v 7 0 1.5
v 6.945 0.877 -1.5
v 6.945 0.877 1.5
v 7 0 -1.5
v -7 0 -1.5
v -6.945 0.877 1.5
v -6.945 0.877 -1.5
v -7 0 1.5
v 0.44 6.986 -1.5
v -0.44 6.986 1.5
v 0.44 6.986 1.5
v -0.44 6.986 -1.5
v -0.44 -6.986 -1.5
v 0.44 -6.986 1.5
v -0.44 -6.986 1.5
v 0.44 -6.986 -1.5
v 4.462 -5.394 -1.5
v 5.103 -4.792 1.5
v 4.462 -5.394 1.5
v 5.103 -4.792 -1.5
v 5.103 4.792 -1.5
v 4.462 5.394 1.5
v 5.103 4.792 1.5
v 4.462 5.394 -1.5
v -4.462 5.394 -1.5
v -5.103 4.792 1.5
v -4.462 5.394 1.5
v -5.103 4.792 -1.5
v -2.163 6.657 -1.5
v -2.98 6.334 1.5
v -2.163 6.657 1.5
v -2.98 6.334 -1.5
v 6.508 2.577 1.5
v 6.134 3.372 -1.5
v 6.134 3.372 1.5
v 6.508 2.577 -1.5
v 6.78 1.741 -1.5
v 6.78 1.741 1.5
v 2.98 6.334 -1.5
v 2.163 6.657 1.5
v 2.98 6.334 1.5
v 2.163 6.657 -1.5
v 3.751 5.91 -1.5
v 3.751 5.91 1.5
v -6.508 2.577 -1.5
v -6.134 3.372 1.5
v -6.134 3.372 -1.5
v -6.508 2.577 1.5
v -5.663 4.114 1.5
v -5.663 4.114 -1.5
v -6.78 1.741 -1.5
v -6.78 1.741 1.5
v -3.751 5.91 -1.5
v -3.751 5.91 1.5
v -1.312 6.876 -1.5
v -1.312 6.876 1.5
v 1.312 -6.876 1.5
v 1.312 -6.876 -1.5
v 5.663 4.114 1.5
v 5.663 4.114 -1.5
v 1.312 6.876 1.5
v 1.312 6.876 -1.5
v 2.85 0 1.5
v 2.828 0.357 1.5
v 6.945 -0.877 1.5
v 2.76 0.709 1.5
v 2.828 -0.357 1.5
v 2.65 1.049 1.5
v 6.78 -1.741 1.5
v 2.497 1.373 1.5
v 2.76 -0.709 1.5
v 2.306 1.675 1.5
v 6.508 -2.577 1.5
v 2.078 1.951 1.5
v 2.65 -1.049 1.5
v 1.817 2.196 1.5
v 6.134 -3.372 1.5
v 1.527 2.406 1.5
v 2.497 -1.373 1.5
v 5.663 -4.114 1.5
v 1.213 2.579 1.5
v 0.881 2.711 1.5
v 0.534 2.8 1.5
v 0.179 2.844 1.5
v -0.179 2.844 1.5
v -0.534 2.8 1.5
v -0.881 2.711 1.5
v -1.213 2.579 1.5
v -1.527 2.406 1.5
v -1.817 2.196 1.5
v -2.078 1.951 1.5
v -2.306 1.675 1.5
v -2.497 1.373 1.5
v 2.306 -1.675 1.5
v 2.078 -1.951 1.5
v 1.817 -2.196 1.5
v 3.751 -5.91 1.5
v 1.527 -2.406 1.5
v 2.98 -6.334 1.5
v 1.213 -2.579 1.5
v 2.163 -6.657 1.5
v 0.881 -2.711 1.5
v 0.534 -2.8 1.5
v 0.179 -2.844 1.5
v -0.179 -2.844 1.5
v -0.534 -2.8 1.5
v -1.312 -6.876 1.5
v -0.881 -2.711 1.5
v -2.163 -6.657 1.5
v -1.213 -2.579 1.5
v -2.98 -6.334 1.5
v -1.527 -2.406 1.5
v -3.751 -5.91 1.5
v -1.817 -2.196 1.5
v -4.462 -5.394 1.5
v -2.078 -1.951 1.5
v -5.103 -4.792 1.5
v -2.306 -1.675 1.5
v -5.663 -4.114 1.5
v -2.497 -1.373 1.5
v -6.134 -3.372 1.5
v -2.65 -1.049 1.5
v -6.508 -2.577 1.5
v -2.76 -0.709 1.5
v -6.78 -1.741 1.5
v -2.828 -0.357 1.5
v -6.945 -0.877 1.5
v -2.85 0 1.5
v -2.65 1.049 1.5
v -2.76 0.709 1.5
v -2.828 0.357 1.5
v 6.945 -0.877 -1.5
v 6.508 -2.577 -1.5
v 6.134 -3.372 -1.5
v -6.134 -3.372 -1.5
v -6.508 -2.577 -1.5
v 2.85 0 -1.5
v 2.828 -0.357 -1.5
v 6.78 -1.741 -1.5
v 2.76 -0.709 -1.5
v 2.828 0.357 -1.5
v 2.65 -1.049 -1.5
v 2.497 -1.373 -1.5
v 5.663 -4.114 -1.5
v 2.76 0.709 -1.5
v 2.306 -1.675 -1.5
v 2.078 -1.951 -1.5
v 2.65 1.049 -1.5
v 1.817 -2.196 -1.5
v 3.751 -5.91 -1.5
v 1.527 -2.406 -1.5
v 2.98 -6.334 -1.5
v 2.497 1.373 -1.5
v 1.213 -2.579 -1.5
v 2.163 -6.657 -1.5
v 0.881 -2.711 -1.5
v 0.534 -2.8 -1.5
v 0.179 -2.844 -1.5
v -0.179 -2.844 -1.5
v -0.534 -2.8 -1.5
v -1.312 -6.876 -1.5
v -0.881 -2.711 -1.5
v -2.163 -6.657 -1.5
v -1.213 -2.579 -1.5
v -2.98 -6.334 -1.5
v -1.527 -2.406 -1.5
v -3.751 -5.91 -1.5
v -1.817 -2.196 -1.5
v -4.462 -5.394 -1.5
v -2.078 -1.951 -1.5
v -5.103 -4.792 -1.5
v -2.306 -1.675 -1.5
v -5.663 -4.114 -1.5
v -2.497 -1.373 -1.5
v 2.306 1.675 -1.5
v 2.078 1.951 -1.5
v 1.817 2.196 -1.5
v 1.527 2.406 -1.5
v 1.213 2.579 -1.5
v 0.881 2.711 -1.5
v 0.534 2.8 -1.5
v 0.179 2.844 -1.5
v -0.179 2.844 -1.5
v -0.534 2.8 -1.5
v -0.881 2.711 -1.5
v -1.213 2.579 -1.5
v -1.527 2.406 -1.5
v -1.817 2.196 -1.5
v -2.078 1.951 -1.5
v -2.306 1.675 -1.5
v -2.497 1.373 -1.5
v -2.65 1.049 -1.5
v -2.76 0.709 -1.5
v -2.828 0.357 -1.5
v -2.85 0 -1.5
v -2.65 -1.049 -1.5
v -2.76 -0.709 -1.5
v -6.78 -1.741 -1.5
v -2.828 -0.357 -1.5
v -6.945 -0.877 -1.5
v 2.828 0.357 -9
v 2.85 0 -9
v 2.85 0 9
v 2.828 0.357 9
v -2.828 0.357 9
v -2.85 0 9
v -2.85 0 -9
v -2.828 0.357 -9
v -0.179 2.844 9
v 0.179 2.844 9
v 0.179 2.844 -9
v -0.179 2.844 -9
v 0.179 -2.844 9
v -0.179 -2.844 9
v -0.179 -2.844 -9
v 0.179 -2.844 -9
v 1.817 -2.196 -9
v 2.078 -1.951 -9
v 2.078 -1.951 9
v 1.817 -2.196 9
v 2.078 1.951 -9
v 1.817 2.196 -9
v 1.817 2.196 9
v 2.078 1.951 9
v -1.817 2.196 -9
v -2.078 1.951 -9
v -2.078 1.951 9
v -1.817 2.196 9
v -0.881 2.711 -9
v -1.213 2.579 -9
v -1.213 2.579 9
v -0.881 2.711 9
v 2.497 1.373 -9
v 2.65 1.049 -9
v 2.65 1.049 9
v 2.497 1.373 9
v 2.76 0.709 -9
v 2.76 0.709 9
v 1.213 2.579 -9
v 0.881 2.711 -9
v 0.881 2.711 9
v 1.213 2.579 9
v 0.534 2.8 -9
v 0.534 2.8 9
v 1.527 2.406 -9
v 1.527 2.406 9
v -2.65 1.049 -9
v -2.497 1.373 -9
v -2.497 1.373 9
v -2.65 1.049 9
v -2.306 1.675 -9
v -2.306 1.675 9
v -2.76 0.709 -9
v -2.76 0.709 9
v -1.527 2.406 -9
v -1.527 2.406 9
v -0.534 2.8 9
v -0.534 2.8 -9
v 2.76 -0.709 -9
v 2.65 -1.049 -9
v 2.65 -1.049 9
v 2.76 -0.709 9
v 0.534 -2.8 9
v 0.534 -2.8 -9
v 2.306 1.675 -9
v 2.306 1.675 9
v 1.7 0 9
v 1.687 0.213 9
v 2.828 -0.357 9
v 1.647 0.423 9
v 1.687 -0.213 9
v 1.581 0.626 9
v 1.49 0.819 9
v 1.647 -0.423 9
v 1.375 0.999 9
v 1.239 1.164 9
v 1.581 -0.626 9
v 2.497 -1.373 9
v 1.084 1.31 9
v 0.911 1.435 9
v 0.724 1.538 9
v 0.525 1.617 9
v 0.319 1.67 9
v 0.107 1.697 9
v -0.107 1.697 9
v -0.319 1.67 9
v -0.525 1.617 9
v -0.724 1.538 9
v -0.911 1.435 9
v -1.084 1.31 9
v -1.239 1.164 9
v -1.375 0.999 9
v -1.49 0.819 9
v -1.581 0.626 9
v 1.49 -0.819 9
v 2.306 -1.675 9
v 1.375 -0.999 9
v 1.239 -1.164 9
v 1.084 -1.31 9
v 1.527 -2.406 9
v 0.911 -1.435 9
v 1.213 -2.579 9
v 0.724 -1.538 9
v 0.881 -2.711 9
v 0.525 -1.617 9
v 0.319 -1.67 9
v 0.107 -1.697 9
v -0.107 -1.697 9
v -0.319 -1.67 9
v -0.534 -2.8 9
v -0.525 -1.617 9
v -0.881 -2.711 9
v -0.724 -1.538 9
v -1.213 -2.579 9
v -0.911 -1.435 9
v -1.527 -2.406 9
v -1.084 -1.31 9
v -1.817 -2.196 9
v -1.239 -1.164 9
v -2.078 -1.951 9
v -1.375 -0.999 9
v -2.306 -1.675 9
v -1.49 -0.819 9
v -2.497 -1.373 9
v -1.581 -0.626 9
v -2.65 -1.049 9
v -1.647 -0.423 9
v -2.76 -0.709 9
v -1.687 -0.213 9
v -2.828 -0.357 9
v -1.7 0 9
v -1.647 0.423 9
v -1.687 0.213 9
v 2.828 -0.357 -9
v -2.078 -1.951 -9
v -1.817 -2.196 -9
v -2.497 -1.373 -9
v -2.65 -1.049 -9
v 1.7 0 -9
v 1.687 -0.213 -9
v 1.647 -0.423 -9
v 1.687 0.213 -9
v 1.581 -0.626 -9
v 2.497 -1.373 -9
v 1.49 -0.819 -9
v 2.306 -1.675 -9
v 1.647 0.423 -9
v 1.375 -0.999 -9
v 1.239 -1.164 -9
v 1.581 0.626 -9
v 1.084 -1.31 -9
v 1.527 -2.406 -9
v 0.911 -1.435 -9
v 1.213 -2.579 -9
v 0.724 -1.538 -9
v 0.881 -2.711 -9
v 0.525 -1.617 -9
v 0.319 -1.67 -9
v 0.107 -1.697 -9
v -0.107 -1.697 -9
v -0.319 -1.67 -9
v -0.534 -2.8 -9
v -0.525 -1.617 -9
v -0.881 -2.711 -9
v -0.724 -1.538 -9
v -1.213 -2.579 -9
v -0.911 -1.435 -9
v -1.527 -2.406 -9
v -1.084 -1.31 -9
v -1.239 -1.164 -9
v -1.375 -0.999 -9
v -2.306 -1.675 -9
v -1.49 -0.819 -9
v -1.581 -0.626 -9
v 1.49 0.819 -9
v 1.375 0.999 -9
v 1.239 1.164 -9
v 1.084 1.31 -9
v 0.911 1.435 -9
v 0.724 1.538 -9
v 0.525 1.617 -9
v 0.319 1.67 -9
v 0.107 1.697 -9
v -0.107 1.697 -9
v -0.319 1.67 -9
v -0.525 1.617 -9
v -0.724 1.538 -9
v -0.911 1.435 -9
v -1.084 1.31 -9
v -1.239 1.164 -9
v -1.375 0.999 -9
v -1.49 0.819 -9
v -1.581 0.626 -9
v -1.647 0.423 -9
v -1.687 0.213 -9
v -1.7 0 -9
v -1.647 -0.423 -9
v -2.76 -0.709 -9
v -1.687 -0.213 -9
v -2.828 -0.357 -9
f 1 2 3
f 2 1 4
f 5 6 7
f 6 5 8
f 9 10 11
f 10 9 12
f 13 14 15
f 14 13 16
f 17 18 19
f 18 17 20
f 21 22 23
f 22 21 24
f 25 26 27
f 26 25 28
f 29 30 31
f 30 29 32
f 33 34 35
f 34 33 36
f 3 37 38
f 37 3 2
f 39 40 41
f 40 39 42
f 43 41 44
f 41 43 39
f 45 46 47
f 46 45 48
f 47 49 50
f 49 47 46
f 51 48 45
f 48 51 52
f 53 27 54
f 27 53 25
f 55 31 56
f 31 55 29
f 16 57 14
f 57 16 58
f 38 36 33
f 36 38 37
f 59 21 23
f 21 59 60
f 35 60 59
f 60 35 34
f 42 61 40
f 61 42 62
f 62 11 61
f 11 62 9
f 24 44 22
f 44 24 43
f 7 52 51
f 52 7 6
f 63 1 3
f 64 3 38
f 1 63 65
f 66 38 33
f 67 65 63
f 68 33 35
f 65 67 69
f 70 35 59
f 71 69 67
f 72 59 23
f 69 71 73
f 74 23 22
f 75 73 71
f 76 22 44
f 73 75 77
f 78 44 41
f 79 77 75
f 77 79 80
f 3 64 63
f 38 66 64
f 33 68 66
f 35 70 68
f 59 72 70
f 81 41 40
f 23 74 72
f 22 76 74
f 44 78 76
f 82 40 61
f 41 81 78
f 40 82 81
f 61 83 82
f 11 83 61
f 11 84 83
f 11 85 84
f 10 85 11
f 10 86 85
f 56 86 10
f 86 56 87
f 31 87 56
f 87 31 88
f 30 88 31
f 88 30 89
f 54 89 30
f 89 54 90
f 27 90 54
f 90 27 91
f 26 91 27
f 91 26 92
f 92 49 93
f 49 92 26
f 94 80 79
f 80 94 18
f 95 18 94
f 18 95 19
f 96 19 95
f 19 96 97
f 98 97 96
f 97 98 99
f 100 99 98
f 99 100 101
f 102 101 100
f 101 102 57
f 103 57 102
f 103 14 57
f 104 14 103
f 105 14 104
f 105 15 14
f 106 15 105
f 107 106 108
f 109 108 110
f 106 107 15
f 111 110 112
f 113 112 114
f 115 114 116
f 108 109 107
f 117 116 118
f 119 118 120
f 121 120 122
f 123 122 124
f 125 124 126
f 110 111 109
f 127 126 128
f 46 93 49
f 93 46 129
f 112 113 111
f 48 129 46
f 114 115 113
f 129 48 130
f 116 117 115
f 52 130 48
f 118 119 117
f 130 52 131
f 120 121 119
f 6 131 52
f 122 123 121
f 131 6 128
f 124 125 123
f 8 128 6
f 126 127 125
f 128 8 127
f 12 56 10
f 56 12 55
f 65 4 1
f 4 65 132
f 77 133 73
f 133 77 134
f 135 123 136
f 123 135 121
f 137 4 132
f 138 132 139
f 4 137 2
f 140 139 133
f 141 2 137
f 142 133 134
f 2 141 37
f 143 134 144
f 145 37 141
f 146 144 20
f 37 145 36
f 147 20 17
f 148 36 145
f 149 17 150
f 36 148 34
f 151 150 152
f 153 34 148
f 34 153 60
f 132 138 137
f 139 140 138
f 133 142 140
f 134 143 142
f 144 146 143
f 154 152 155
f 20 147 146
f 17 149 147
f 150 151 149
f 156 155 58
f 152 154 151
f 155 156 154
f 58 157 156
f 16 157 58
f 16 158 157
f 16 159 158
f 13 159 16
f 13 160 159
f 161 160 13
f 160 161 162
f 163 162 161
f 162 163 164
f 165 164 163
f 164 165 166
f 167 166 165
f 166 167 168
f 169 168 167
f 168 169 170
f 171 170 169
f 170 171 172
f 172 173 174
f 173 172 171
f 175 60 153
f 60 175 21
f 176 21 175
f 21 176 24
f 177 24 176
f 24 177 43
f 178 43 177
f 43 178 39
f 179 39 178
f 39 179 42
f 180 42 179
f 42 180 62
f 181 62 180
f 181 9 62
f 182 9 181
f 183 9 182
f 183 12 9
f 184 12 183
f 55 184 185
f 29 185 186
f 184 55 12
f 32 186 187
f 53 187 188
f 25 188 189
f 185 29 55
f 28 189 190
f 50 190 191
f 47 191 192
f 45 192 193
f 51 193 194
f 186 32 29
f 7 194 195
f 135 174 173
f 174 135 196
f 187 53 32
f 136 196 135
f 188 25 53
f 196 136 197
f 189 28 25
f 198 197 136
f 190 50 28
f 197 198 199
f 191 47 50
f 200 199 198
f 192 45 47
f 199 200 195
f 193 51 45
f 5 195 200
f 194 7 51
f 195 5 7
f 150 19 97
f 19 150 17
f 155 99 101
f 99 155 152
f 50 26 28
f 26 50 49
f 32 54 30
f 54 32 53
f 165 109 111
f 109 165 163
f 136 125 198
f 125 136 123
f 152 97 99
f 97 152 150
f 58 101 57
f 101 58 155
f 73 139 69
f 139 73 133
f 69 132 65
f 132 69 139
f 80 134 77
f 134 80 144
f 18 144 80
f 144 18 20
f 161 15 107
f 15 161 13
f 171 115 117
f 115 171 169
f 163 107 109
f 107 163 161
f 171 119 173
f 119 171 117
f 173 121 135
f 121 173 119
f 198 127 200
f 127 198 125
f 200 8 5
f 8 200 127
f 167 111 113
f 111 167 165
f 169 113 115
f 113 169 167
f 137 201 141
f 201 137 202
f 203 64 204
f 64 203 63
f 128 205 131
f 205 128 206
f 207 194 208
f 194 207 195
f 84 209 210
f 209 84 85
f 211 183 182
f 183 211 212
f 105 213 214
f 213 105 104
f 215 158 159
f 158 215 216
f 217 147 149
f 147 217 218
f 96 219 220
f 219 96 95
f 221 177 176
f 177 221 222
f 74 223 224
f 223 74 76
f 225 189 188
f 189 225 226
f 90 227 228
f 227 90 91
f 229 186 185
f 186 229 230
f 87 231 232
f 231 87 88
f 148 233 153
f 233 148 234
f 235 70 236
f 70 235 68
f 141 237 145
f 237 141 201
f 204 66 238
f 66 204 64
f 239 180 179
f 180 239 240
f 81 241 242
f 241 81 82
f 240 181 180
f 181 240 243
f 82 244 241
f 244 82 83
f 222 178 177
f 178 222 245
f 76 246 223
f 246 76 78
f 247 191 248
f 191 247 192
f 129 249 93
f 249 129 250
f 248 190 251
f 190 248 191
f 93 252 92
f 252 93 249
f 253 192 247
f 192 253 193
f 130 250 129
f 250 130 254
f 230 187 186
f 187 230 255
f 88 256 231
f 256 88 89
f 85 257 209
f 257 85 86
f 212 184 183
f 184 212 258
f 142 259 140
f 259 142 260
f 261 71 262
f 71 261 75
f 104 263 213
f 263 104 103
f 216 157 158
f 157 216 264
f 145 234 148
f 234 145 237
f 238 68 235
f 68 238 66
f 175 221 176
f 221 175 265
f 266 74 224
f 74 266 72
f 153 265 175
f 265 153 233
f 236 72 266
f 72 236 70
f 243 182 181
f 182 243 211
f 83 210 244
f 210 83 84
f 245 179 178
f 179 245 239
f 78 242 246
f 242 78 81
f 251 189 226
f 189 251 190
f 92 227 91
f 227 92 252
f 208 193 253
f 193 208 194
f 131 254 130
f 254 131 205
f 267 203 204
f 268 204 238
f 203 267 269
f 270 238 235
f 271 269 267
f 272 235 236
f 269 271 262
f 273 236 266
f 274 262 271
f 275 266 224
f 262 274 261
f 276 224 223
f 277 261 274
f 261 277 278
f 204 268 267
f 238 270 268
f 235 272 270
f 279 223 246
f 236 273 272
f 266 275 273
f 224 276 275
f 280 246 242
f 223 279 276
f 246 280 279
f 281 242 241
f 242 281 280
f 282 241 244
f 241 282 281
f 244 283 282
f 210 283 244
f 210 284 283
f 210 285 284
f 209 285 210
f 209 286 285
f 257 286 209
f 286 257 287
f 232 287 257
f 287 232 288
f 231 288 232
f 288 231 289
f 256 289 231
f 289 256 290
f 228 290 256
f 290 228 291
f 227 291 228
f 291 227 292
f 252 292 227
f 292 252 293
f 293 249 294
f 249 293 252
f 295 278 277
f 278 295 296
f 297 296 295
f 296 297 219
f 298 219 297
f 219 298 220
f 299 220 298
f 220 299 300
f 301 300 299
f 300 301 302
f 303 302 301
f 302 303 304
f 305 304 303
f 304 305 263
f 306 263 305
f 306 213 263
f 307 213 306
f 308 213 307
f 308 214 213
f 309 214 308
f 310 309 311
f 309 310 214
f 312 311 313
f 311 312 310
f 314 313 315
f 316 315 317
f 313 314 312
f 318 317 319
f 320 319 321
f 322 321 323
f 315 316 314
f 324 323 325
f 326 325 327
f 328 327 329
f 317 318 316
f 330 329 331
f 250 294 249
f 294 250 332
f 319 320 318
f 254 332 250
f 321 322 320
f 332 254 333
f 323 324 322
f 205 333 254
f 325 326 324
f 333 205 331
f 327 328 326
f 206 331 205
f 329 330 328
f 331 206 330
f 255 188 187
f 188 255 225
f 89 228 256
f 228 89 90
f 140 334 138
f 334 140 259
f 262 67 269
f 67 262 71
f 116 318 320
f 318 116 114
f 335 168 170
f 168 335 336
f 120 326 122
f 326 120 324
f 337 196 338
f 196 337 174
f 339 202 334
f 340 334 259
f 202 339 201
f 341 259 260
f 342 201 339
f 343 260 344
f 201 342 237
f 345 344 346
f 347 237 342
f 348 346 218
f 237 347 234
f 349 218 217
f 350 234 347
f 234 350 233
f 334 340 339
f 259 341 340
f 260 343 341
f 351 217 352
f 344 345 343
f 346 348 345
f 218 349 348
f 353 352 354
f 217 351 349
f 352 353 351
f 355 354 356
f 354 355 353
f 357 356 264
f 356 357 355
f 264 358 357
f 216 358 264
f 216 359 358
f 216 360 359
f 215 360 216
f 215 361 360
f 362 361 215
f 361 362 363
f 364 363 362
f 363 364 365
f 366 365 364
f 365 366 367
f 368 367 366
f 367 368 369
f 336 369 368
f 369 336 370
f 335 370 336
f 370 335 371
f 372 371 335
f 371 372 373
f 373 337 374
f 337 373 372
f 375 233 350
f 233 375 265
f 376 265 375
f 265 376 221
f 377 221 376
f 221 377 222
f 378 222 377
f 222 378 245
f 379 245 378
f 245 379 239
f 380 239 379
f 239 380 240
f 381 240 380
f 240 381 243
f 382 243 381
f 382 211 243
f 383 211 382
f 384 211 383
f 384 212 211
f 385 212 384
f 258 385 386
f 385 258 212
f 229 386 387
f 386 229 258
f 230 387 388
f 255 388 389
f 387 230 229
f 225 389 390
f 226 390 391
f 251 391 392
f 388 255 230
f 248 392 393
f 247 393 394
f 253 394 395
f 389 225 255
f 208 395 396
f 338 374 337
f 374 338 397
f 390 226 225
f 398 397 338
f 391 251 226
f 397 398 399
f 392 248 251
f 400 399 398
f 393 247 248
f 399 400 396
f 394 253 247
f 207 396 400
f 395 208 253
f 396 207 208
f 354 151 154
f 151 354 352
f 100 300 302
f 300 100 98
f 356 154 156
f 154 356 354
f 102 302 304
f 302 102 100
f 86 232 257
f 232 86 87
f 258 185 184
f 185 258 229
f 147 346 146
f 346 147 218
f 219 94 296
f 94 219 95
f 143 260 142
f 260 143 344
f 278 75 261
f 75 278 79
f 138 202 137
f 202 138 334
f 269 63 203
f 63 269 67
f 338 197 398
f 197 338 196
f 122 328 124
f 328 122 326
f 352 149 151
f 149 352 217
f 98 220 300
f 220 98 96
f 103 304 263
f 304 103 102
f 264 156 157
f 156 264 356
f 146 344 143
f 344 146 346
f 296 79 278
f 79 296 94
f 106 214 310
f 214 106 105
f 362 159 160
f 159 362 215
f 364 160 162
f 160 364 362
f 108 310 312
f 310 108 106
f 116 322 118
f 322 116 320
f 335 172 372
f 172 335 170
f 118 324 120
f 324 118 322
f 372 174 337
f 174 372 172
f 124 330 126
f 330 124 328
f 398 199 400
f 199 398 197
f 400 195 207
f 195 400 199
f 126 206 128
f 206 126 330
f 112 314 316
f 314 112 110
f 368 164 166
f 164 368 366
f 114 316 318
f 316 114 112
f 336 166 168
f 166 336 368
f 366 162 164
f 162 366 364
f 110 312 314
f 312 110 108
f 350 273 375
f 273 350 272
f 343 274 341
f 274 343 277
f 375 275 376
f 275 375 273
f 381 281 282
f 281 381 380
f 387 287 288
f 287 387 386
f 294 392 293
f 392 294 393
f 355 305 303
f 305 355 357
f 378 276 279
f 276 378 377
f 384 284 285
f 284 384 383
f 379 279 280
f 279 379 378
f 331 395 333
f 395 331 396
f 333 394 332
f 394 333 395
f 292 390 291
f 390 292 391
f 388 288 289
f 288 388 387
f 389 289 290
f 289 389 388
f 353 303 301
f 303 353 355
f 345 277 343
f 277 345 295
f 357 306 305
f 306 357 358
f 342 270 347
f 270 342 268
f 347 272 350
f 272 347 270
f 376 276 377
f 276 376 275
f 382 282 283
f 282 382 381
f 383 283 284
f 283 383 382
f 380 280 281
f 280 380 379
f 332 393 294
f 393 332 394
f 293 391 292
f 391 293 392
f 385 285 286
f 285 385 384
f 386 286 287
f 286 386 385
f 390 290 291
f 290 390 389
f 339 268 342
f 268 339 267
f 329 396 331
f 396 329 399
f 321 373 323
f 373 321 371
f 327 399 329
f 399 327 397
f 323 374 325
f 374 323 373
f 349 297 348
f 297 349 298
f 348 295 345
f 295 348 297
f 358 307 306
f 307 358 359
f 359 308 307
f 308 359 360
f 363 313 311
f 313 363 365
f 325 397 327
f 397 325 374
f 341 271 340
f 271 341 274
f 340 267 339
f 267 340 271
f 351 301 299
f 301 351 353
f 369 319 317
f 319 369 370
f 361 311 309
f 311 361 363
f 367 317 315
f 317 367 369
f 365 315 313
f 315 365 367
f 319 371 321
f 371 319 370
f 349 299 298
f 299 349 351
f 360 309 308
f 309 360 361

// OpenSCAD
$fn = 50;


difference() {
	union() {
		translate(v = [0, 0, -1.5000000000]) {
			rotate(a = [0, 0, 0]) {
				cylinder(h = 3, r = 7.0000000000);
			}
		}
		translate(v = [0, 0, -9.0000000000]) {
			rotate(a = [0, 0, 0]) {
				cylinder(h = 18, r = 2.8500000000);
			}
		}
	}
	union() {
		translate(v = [0, 0, -125.0000000000]) {
			rotate(a = [0, 0, 0]) {
				cylinder(h = 250, r = 1.7000000000);
			}
		}
	}
}
